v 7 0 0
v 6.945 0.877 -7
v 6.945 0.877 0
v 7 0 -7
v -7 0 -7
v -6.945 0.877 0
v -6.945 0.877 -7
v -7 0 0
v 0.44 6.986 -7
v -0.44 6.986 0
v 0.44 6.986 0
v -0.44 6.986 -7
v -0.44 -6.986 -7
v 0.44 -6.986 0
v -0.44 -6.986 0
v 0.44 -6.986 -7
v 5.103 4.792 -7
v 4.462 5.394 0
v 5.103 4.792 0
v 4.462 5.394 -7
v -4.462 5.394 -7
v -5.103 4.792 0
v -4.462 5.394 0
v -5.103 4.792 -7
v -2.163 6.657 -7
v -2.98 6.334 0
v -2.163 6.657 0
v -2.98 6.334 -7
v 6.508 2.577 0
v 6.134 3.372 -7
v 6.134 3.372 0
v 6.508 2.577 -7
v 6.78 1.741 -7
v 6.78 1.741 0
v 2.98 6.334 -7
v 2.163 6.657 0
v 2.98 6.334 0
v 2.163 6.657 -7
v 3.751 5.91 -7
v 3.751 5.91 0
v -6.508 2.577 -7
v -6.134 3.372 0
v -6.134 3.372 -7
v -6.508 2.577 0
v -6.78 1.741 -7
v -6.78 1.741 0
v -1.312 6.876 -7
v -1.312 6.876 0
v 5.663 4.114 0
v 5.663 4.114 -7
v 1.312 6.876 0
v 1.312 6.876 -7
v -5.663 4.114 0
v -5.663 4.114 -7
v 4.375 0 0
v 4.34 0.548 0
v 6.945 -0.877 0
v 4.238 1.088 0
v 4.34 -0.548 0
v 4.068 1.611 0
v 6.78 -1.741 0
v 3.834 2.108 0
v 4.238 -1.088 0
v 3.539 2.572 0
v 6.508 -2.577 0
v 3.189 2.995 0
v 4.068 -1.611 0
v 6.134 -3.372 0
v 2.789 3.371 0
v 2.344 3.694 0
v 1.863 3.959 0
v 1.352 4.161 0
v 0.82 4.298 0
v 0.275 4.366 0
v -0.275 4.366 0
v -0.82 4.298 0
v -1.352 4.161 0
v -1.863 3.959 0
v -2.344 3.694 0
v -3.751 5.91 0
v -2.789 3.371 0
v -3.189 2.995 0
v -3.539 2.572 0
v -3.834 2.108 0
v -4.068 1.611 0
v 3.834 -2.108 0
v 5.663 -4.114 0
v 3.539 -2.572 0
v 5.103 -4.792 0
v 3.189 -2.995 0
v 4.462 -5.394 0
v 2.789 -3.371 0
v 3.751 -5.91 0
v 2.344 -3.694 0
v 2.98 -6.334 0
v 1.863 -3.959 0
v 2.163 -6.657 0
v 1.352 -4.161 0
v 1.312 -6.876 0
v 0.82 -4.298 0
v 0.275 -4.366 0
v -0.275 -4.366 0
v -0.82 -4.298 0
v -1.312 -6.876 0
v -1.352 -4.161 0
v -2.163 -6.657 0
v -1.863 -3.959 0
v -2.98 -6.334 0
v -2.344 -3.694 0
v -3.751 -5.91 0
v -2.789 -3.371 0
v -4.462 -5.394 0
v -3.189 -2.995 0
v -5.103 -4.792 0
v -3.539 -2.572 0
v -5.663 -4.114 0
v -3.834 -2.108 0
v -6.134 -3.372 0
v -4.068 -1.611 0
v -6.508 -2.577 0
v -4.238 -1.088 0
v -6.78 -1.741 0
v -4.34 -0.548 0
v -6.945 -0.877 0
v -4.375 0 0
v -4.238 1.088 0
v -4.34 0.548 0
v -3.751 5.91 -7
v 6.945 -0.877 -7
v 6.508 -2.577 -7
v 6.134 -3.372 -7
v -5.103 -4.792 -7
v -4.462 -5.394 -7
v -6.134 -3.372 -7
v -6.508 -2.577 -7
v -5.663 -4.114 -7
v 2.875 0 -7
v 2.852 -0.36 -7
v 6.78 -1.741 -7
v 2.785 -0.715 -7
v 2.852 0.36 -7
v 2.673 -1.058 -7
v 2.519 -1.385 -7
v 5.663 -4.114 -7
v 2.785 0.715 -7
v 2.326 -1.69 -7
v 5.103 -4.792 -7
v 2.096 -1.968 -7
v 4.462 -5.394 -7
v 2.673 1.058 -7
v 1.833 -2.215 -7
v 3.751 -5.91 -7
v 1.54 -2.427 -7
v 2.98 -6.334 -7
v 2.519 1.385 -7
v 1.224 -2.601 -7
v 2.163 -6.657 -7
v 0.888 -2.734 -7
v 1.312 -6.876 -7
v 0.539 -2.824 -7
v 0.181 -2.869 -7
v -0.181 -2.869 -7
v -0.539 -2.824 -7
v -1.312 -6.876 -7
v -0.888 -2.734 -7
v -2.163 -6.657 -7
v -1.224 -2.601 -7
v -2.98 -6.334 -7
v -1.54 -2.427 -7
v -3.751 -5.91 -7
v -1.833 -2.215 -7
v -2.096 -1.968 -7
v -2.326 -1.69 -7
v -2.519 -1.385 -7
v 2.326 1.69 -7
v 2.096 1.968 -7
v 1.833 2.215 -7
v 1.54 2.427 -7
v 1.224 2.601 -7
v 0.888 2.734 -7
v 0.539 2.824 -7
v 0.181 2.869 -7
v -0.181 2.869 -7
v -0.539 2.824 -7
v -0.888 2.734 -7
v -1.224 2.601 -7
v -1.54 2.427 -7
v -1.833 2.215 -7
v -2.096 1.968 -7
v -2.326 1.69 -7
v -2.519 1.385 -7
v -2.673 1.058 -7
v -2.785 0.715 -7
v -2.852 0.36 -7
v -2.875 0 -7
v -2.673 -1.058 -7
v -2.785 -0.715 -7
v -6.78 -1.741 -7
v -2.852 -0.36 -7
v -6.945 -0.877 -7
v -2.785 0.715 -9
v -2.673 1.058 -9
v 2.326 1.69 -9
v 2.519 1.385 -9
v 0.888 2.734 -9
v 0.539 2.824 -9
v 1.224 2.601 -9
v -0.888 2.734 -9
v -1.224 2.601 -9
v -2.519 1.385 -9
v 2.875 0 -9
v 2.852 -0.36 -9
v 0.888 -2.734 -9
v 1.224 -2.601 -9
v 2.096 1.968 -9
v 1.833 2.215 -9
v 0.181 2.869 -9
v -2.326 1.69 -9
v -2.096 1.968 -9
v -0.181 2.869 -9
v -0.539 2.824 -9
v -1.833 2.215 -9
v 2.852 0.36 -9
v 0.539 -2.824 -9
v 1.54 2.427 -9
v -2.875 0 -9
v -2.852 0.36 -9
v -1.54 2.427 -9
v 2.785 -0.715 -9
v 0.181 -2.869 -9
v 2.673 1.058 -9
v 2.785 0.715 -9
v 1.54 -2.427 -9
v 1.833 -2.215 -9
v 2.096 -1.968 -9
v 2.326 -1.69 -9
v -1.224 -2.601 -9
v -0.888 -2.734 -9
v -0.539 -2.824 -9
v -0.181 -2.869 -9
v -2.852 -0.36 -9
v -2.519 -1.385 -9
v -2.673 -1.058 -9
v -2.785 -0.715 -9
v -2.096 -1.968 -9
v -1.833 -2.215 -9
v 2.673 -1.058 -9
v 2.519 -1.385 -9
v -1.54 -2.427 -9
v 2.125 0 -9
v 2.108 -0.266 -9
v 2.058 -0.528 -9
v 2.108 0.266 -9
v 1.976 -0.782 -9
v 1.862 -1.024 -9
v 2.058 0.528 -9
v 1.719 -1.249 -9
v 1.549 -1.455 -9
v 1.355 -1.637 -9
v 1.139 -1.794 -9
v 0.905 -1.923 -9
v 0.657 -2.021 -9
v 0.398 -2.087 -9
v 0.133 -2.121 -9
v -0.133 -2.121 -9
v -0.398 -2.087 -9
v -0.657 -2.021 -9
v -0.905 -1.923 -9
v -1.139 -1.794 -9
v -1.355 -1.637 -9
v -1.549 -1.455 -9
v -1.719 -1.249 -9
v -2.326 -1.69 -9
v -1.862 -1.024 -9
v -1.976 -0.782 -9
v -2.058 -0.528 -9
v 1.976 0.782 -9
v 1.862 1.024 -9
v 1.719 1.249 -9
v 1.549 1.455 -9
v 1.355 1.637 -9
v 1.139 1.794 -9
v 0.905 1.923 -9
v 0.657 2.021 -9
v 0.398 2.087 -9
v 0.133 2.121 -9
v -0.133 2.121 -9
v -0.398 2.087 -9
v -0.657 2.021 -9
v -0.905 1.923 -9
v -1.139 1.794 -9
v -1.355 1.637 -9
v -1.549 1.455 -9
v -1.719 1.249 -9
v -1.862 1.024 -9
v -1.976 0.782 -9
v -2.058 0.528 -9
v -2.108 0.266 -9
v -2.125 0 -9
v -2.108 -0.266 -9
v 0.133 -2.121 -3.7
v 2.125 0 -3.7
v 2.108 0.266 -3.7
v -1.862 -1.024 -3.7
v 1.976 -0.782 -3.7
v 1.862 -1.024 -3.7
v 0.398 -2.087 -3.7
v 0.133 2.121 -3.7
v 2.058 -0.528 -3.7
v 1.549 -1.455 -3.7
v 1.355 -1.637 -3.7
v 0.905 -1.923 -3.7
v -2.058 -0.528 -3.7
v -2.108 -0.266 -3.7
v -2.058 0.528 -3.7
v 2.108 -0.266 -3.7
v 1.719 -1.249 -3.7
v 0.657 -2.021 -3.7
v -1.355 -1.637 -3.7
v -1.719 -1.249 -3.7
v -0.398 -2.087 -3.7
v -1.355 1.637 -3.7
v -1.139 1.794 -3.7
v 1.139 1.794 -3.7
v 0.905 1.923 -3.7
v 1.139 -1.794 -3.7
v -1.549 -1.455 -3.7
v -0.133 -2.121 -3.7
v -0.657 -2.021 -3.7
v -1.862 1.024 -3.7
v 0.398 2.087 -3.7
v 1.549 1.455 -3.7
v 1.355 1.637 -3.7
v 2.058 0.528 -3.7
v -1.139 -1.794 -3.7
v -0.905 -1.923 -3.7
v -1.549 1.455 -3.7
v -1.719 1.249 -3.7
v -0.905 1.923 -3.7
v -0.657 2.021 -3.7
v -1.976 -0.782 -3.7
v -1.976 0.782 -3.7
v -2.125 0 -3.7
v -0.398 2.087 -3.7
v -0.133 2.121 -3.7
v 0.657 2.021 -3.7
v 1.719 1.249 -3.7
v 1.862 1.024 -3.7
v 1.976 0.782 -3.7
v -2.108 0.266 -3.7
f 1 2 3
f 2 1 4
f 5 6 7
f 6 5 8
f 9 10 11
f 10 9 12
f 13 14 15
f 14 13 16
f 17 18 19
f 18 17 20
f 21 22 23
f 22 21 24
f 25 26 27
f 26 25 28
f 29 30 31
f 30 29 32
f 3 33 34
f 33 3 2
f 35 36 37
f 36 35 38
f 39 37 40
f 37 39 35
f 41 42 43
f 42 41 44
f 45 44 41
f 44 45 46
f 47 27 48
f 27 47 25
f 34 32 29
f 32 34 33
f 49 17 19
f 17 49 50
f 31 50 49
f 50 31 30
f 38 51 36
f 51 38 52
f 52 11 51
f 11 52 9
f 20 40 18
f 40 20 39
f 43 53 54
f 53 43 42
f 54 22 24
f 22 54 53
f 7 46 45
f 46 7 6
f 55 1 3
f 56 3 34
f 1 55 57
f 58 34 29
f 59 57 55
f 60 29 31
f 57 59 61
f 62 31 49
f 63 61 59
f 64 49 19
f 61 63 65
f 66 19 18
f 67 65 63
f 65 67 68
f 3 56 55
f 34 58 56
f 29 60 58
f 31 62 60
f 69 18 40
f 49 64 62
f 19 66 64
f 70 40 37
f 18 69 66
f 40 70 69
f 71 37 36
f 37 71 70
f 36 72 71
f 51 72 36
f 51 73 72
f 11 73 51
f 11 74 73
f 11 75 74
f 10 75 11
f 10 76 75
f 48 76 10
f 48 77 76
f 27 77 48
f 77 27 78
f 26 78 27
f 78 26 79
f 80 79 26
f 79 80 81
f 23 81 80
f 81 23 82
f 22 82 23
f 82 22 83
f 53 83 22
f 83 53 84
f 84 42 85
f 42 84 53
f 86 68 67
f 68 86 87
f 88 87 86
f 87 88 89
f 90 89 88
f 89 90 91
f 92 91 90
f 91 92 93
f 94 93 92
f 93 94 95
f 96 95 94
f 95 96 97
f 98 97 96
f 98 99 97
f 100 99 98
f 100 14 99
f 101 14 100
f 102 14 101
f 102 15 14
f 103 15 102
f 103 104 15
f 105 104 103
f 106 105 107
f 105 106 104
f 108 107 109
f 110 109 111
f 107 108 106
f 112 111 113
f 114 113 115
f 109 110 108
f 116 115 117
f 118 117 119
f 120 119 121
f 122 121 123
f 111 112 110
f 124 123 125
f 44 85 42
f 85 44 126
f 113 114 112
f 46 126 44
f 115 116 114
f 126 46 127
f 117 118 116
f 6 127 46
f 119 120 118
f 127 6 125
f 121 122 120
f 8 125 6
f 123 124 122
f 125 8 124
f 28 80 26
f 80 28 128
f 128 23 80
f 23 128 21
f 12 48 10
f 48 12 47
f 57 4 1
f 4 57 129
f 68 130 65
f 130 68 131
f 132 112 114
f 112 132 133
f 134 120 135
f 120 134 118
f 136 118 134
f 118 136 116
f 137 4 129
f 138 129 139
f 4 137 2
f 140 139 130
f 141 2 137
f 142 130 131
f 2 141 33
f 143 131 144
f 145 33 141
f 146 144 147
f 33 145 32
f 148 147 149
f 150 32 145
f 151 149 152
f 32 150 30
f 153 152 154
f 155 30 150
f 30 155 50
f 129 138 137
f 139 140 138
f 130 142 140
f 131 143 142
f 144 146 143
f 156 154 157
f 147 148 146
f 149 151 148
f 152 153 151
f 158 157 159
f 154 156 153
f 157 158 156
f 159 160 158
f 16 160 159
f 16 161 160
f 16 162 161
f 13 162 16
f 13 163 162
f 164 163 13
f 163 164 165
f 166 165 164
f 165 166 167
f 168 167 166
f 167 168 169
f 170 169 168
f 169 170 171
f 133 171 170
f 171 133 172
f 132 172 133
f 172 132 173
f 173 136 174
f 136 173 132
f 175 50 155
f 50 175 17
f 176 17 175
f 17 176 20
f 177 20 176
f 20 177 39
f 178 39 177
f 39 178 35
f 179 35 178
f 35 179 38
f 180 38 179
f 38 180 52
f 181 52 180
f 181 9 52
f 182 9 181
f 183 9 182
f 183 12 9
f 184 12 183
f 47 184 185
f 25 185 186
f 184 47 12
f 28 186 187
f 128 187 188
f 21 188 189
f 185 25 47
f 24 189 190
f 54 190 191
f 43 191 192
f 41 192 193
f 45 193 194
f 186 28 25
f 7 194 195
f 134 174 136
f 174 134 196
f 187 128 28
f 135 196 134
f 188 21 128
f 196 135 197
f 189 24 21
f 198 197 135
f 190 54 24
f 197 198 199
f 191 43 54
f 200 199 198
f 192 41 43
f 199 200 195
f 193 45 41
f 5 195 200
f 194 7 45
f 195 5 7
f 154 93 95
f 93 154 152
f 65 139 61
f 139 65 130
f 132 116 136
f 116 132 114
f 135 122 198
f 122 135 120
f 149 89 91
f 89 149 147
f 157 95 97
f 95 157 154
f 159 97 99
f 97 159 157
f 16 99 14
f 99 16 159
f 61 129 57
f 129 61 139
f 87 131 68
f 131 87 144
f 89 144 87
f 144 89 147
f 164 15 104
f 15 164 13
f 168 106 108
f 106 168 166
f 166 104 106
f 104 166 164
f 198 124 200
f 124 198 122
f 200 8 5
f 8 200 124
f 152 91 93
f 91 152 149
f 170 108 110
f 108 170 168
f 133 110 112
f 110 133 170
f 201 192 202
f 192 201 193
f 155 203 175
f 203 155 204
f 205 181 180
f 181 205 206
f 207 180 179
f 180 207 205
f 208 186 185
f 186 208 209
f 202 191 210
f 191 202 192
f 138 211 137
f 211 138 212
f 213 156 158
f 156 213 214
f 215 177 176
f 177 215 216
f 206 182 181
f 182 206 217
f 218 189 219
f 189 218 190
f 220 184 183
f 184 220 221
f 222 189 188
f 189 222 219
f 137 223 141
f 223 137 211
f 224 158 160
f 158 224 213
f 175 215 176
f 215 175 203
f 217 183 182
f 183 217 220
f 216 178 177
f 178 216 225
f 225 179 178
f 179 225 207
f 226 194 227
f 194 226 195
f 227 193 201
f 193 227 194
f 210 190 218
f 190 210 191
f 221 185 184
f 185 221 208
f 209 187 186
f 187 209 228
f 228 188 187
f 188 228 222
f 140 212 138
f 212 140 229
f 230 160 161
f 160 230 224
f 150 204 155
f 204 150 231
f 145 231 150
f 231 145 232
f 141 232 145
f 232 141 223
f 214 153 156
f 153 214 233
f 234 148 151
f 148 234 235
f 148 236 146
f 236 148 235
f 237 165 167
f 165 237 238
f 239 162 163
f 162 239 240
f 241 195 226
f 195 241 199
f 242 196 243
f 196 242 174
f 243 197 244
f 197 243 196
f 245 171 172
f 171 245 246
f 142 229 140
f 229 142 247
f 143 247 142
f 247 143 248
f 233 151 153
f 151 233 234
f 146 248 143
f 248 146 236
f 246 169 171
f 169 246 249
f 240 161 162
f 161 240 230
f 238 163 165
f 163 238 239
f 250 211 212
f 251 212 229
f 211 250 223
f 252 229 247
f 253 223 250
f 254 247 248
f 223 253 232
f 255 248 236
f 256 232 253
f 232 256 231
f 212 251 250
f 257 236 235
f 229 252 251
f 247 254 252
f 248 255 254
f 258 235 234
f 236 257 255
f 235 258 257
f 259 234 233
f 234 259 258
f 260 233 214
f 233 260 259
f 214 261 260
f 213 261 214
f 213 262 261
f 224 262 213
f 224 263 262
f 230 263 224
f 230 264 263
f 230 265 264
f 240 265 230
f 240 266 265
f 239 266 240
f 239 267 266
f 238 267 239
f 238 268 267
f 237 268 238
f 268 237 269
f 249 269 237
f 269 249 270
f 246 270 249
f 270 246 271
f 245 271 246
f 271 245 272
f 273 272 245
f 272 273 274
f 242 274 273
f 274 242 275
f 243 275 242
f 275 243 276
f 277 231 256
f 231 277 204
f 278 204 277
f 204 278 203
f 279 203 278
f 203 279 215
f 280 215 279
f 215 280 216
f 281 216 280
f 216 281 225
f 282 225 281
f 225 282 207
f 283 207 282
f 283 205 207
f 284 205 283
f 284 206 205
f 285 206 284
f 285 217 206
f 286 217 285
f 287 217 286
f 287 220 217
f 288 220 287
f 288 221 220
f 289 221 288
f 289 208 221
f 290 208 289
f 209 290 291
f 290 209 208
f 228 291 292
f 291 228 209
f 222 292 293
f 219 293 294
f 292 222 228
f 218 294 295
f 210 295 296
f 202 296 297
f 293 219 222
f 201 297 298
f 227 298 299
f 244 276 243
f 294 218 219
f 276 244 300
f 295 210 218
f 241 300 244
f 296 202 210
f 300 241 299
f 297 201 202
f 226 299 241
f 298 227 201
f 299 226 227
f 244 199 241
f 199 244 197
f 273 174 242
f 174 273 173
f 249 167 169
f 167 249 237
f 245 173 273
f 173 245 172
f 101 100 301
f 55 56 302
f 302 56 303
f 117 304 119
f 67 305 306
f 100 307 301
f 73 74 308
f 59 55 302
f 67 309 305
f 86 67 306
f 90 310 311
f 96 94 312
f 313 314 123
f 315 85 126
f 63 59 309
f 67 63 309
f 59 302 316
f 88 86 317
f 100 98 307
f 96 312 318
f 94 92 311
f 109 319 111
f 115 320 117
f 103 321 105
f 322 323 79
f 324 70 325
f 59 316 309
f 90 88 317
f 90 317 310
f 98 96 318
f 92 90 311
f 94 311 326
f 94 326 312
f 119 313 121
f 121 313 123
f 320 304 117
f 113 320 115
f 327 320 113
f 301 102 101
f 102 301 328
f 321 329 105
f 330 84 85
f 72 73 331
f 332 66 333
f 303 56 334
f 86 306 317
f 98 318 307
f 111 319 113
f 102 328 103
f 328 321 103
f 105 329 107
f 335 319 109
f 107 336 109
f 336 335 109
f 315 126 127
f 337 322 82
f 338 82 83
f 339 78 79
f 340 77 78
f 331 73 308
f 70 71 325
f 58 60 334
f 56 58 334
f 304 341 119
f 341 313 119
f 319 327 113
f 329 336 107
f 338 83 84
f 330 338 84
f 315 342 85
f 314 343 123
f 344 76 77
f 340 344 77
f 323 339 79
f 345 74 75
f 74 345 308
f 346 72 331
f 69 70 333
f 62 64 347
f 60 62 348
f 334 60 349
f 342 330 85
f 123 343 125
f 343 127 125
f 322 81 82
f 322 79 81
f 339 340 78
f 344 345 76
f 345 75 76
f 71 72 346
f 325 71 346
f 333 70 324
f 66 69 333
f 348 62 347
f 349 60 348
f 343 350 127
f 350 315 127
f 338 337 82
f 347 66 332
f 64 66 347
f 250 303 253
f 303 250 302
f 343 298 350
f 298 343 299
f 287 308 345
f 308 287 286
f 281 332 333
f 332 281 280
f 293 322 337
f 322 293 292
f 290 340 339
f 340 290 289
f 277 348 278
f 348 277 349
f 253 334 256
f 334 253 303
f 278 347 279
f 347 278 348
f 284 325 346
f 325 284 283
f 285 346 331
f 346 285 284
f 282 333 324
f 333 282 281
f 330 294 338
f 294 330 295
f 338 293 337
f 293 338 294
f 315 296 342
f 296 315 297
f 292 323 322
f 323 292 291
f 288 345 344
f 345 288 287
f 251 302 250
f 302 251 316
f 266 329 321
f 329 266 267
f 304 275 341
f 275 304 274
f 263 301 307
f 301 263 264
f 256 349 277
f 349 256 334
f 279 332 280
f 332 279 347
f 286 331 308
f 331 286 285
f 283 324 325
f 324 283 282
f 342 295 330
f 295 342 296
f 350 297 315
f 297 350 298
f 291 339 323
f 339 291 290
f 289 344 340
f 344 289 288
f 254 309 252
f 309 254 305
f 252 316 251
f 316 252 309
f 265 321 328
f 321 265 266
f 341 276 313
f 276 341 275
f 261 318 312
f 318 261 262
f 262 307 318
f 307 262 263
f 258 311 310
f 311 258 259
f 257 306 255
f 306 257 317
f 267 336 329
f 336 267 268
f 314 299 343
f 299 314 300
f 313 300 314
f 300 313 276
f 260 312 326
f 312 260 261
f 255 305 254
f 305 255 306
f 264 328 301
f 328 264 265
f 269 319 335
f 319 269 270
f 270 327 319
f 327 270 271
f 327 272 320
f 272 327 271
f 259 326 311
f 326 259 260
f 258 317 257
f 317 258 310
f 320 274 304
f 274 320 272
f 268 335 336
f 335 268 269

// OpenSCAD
$fn = 50;


difference() {
	union() {
		translate(v = [0, 0, -7.0000000000]) {
			cylinder(h = 7, r = 7.0000000000);
		}
		translate(v = [0, 0, -9.0000000000]) {
			cylinder(h = 9, r = 2.8750000000);
		}
	}
	union() {
		translate(v = [0, 0, 0]) {
			rotate(a = [0, 0, 0]) {
				difference() {
					union() {
						translate(v = [0, 0, -9.0000000000]) {
							cylinder(h = 9, r = 2.0000000000);
						}
						translate(v = [0, 0, -3.7000000000]) {
							cylinder(h = 3.7000000000, r1 = 2.1250000000, r2 = 4.3750000000);
						}
						translate(v = [0, 0, -9.0000000000]) {
							cylinder(h = 9, r = 2.1250000000);
						}
						translate(v = [0, 0, -9.0000000000]) {
							cylinder(h = 9, r = 2.0000000000);
						}
					}
					union();
				}
			}
		}
	}
}
